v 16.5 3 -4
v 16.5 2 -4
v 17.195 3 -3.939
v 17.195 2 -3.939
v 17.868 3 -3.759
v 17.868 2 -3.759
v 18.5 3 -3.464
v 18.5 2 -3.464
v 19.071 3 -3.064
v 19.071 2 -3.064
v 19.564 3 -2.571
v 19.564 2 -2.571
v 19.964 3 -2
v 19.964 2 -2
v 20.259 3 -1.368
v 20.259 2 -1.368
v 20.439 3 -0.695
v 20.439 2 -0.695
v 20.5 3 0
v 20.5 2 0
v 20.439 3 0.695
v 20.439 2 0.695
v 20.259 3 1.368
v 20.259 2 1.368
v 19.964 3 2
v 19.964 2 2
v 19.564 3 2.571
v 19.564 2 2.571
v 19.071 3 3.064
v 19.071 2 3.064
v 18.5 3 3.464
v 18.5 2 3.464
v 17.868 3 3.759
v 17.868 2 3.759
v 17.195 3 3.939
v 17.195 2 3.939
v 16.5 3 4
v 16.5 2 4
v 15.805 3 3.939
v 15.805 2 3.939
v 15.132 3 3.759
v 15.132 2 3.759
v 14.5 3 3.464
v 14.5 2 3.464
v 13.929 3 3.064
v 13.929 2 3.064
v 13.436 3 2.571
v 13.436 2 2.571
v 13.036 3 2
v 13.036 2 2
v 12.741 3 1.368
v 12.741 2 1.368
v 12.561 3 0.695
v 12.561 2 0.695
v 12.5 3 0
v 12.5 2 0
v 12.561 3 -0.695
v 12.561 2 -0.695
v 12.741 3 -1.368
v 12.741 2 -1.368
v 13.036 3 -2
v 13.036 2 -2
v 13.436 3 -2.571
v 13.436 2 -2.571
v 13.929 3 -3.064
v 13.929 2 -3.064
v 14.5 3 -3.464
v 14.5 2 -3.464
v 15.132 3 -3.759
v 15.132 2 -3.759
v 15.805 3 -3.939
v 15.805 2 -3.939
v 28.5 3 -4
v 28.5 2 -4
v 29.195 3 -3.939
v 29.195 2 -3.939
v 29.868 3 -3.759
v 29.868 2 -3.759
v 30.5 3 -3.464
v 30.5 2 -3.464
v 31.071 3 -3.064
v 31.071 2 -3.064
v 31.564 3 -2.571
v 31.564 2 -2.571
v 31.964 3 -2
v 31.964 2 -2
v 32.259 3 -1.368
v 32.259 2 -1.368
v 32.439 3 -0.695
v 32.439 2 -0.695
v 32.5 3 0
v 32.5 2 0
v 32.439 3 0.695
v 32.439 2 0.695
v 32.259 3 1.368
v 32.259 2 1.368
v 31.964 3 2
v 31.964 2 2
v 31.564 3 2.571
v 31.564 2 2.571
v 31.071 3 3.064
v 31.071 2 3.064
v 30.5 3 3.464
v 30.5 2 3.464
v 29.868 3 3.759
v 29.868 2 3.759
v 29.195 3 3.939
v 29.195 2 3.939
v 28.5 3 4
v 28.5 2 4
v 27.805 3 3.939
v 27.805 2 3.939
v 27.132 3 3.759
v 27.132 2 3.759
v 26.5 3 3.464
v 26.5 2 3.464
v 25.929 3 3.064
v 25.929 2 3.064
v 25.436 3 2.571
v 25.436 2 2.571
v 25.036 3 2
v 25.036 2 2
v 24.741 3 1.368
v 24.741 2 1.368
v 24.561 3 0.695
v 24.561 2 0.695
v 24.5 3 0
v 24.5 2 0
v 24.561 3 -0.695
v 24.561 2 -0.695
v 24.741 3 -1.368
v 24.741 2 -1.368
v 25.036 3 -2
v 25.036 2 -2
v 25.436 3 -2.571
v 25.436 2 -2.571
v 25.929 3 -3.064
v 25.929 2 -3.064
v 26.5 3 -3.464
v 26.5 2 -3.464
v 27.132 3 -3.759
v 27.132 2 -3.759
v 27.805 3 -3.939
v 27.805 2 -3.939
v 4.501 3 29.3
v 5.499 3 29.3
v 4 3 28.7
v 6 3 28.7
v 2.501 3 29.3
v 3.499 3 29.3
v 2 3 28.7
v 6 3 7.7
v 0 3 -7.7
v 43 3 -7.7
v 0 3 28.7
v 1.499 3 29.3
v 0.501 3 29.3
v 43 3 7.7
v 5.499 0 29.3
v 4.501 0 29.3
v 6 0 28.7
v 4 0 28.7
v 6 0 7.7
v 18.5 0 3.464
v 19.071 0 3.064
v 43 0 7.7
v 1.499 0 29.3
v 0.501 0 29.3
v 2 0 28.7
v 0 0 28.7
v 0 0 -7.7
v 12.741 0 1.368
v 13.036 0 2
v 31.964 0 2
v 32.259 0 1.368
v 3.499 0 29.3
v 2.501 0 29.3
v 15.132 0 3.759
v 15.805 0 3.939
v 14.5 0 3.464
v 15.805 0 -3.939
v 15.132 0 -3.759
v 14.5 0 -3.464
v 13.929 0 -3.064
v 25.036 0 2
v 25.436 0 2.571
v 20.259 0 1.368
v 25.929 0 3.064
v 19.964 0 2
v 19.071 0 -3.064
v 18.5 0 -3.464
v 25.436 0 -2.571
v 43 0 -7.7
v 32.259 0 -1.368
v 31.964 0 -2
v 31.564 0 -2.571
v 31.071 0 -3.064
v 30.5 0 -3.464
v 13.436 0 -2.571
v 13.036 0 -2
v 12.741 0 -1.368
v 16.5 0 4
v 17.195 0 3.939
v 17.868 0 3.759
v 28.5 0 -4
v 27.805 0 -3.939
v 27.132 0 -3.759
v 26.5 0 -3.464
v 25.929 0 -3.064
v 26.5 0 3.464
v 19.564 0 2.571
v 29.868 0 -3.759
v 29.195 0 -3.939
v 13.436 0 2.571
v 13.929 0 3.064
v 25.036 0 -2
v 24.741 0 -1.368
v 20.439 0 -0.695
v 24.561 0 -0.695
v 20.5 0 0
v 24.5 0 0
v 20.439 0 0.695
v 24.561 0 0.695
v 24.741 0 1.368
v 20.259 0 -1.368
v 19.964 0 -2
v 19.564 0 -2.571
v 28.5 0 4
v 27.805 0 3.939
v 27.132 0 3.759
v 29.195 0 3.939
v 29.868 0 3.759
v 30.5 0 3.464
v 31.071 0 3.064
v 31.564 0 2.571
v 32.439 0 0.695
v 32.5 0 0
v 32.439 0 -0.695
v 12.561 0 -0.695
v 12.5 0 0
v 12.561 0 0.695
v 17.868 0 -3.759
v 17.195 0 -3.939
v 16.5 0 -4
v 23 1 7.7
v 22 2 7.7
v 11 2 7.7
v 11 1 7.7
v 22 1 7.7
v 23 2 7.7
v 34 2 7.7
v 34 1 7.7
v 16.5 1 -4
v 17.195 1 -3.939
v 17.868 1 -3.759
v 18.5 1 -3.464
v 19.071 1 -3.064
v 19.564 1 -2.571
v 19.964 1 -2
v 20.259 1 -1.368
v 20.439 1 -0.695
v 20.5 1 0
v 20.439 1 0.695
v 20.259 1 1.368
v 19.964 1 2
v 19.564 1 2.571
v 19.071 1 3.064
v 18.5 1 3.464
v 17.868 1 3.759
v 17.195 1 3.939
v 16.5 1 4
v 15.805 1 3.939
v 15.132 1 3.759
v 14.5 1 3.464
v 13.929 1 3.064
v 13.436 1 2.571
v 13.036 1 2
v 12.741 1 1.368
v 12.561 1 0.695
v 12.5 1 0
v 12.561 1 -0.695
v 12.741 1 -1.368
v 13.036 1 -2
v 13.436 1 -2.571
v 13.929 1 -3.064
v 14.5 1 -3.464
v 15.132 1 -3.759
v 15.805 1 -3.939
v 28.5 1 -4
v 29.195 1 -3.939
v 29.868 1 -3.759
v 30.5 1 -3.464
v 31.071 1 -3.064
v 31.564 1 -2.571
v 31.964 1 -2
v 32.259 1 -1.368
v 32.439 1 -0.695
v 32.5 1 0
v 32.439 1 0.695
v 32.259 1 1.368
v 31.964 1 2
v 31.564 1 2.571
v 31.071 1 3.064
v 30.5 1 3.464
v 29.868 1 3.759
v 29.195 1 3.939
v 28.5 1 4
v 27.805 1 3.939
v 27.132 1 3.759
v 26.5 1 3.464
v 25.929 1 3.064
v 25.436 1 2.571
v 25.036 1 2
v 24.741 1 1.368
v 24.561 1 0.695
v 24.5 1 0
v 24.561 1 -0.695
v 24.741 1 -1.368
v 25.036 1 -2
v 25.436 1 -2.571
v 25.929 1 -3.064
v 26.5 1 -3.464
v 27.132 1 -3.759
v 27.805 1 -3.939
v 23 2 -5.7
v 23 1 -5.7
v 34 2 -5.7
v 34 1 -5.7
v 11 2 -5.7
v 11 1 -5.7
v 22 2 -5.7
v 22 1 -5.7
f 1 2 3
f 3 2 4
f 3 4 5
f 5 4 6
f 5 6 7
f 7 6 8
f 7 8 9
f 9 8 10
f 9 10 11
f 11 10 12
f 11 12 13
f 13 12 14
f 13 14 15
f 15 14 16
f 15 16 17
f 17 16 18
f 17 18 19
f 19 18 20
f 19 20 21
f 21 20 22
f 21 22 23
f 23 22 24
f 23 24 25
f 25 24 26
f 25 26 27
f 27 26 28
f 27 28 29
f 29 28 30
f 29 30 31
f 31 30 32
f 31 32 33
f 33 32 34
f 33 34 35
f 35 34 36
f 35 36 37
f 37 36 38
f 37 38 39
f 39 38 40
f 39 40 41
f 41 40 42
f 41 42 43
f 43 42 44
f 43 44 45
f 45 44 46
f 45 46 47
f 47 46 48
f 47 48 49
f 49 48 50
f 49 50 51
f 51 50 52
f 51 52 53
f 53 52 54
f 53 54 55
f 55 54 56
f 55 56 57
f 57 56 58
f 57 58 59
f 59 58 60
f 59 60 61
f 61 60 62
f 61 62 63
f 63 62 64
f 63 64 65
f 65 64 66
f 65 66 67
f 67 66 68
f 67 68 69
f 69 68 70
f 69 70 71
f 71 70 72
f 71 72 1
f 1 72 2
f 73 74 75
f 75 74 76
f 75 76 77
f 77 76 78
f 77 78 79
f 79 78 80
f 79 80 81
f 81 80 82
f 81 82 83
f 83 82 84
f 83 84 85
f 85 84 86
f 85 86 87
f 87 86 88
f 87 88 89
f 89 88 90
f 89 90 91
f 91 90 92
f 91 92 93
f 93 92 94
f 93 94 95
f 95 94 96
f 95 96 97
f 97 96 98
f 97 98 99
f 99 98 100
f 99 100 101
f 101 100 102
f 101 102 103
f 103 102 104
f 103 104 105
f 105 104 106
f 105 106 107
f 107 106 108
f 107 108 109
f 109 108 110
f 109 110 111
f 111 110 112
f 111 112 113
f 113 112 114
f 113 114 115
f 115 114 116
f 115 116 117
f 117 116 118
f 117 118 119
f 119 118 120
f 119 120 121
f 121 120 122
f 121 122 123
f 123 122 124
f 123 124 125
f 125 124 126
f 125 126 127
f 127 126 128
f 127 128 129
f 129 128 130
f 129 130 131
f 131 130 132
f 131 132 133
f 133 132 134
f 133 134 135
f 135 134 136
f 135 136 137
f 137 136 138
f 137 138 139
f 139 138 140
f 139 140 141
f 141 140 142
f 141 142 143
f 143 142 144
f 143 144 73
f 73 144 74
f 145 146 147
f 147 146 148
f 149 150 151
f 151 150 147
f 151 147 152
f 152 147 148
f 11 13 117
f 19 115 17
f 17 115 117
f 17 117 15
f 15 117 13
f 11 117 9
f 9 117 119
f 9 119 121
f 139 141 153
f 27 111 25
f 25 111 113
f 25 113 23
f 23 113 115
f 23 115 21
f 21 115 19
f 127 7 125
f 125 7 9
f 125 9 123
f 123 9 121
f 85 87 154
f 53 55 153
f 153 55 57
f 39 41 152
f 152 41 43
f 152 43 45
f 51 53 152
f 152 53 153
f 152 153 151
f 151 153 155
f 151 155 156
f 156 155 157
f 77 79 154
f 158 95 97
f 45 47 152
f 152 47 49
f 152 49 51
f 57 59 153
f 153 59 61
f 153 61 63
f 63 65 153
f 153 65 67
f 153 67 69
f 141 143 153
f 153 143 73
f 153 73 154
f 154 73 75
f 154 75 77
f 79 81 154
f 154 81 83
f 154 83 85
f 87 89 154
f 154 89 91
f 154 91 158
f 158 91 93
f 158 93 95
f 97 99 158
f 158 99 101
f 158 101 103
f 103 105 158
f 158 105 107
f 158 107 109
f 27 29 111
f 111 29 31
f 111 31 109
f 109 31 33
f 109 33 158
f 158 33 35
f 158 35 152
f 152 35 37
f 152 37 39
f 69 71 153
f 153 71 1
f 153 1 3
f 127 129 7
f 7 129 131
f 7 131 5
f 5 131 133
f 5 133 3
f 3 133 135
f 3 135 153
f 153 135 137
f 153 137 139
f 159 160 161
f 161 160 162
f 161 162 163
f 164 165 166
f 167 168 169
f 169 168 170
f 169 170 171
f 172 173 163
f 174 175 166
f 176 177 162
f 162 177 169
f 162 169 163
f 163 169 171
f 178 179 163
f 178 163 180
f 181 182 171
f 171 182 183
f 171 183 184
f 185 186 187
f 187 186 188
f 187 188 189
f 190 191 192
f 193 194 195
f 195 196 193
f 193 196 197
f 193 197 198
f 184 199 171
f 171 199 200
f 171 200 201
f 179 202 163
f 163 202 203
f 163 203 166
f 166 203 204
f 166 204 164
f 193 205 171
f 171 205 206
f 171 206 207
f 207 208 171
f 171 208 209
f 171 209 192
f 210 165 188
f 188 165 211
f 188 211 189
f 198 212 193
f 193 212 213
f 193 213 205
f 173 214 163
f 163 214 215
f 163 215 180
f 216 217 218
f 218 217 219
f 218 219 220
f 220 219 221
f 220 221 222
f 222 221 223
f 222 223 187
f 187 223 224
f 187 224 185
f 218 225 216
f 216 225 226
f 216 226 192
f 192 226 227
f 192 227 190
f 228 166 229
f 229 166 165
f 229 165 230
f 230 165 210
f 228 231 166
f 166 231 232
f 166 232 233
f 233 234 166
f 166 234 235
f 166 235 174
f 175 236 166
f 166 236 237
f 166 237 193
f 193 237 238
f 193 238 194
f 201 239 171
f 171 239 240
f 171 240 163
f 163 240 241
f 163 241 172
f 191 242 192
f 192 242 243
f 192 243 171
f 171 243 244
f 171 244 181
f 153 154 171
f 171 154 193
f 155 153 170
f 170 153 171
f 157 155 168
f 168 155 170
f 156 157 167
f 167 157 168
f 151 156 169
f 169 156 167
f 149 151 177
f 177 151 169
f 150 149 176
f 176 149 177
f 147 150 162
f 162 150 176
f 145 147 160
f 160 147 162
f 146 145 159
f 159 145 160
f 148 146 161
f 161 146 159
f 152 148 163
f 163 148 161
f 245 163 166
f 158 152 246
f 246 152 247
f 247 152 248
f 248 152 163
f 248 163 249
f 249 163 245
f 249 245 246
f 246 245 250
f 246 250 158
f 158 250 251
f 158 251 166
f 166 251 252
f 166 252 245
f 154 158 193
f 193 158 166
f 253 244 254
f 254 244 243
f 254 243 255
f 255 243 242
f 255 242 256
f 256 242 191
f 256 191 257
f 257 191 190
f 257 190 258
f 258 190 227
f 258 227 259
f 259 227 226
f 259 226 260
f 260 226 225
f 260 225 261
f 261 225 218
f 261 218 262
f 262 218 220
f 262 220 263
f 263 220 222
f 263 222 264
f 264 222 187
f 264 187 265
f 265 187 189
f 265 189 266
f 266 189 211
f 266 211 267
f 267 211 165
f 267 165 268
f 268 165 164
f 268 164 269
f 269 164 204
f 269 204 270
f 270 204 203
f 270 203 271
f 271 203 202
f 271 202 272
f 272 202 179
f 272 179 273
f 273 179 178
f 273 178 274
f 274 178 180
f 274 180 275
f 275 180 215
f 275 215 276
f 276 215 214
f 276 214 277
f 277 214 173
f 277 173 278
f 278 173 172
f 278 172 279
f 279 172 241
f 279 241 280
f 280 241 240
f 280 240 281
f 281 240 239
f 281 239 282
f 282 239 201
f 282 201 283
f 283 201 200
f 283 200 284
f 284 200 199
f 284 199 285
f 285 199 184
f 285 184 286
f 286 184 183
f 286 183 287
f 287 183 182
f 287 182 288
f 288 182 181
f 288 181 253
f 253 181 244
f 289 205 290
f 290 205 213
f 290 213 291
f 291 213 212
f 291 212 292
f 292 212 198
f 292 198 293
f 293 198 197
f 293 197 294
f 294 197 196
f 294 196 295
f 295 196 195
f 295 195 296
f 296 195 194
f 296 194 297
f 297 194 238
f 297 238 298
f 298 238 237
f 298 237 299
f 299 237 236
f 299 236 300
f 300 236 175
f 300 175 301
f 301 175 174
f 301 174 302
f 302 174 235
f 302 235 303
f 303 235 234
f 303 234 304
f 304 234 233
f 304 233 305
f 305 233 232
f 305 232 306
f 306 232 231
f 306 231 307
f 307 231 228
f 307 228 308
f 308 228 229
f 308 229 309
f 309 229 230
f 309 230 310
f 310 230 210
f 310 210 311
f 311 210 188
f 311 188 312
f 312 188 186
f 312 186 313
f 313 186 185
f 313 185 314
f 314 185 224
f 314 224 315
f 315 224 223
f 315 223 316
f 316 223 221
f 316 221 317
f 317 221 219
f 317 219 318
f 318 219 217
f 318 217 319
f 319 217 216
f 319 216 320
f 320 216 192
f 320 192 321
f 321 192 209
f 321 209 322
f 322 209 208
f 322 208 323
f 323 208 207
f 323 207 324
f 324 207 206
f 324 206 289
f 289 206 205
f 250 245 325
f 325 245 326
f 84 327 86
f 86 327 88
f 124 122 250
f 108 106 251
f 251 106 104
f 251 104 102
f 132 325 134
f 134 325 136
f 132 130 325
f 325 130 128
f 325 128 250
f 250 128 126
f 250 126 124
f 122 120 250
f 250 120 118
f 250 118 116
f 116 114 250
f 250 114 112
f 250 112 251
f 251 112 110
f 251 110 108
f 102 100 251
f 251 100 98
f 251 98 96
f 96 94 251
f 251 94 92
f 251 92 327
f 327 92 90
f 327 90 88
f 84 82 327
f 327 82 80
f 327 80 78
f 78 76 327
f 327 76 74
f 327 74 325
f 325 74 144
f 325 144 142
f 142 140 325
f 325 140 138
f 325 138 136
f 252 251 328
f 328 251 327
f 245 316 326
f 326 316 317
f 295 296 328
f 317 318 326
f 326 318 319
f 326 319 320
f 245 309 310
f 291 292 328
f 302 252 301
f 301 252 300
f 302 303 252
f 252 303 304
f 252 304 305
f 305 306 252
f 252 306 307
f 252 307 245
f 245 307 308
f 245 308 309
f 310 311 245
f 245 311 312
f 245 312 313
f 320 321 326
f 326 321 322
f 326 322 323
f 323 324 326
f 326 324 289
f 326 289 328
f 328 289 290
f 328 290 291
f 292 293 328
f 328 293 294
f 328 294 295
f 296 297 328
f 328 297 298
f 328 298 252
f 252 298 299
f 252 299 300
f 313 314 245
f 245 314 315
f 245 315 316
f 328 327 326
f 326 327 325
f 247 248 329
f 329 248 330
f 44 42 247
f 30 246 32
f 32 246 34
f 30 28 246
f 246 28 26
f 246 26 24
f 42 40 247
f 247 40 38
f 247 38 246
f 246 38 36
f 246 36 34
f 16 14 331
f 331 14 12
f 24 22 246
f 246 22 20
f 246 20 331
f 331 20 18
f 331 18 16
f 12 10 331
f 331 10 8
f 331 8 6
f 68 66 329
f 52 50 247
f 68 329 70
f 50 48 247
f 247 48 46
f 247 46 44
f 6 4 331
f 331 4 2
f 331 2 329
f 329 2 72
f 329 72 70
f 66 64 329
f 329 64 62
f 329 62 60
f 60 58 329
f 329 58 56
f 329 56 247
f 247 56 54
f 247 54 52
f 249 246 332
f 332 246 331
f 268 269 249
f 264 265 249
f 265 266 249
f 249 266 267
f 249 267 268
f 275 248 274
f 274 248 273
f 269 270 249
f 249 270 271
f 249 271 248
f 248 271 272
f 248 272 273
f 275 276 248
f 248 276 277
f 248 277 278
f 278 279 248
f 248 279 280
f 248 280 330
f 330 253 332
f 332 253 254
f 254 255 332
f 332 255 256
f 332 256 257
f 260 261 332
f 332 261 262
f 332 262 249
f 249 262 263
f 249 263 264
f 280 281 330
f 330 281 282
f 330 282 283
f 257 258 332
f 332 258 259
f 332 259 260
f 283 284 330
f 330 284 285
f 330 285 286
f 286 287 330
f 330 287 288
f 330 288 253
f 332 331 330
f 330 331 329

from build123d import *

# Parameters (mm, degrees)
SKETCH1_R           = 4
BOSS_EXTRUDE1_DEPTH = 3
SKETCH2_W           = 11
SKETCH2_H           = 1
CUT_EXTRUDE1_DEPTH  = 13.4


with BuildPart() as part:
    # Sketch1 → Boss-Extrude1 (new body)
    with BuildSketch(Plane(origin=(0, 0, 0), x_dir=(1, 0, 0), z_dir=(0, 1, 0))):
        Polygon((43, 7.7), (43, -7.7), (6, -7.7), (6, -28.7), (5.499093619, -29.3), (4.500906381, -29.3), (4, -28.7), (3.499093619, -29.3), (2.500906381, -29.3), (2, -28.7), (1.499093619, -29.3), (0.500906381, -29.3), (0, -28.7), (0, 7.7), align=None)
        with Locations((16.5, 0)):
            Circle(SKETCH1_R, mode=Mode.SUBTRACT)
        with Locations((28.5, 0)):
            Circle(SKETCH1_R, mode=Mode.SUBTRACT)
    extrude(amount=BOSS_EXTRUDE1_DEPTH)

    # Sketch2 → Cut-Extrude1 (cut)
    with BuildSketch(Plane.XY.offset(7.7)):
        with Locations((16.5, 1.5)):
            Rectangle(SKETCH2_W, SKETCH2_H)
        with Locations((28.5, 1.5)):
            Rectangle(SKETCH2_W, SKETCH2_H)
    extrude(amount=-CUT_EXTRUDE1_DEPTH, mode=Mode.SUBTRACT)


solid = part.part
